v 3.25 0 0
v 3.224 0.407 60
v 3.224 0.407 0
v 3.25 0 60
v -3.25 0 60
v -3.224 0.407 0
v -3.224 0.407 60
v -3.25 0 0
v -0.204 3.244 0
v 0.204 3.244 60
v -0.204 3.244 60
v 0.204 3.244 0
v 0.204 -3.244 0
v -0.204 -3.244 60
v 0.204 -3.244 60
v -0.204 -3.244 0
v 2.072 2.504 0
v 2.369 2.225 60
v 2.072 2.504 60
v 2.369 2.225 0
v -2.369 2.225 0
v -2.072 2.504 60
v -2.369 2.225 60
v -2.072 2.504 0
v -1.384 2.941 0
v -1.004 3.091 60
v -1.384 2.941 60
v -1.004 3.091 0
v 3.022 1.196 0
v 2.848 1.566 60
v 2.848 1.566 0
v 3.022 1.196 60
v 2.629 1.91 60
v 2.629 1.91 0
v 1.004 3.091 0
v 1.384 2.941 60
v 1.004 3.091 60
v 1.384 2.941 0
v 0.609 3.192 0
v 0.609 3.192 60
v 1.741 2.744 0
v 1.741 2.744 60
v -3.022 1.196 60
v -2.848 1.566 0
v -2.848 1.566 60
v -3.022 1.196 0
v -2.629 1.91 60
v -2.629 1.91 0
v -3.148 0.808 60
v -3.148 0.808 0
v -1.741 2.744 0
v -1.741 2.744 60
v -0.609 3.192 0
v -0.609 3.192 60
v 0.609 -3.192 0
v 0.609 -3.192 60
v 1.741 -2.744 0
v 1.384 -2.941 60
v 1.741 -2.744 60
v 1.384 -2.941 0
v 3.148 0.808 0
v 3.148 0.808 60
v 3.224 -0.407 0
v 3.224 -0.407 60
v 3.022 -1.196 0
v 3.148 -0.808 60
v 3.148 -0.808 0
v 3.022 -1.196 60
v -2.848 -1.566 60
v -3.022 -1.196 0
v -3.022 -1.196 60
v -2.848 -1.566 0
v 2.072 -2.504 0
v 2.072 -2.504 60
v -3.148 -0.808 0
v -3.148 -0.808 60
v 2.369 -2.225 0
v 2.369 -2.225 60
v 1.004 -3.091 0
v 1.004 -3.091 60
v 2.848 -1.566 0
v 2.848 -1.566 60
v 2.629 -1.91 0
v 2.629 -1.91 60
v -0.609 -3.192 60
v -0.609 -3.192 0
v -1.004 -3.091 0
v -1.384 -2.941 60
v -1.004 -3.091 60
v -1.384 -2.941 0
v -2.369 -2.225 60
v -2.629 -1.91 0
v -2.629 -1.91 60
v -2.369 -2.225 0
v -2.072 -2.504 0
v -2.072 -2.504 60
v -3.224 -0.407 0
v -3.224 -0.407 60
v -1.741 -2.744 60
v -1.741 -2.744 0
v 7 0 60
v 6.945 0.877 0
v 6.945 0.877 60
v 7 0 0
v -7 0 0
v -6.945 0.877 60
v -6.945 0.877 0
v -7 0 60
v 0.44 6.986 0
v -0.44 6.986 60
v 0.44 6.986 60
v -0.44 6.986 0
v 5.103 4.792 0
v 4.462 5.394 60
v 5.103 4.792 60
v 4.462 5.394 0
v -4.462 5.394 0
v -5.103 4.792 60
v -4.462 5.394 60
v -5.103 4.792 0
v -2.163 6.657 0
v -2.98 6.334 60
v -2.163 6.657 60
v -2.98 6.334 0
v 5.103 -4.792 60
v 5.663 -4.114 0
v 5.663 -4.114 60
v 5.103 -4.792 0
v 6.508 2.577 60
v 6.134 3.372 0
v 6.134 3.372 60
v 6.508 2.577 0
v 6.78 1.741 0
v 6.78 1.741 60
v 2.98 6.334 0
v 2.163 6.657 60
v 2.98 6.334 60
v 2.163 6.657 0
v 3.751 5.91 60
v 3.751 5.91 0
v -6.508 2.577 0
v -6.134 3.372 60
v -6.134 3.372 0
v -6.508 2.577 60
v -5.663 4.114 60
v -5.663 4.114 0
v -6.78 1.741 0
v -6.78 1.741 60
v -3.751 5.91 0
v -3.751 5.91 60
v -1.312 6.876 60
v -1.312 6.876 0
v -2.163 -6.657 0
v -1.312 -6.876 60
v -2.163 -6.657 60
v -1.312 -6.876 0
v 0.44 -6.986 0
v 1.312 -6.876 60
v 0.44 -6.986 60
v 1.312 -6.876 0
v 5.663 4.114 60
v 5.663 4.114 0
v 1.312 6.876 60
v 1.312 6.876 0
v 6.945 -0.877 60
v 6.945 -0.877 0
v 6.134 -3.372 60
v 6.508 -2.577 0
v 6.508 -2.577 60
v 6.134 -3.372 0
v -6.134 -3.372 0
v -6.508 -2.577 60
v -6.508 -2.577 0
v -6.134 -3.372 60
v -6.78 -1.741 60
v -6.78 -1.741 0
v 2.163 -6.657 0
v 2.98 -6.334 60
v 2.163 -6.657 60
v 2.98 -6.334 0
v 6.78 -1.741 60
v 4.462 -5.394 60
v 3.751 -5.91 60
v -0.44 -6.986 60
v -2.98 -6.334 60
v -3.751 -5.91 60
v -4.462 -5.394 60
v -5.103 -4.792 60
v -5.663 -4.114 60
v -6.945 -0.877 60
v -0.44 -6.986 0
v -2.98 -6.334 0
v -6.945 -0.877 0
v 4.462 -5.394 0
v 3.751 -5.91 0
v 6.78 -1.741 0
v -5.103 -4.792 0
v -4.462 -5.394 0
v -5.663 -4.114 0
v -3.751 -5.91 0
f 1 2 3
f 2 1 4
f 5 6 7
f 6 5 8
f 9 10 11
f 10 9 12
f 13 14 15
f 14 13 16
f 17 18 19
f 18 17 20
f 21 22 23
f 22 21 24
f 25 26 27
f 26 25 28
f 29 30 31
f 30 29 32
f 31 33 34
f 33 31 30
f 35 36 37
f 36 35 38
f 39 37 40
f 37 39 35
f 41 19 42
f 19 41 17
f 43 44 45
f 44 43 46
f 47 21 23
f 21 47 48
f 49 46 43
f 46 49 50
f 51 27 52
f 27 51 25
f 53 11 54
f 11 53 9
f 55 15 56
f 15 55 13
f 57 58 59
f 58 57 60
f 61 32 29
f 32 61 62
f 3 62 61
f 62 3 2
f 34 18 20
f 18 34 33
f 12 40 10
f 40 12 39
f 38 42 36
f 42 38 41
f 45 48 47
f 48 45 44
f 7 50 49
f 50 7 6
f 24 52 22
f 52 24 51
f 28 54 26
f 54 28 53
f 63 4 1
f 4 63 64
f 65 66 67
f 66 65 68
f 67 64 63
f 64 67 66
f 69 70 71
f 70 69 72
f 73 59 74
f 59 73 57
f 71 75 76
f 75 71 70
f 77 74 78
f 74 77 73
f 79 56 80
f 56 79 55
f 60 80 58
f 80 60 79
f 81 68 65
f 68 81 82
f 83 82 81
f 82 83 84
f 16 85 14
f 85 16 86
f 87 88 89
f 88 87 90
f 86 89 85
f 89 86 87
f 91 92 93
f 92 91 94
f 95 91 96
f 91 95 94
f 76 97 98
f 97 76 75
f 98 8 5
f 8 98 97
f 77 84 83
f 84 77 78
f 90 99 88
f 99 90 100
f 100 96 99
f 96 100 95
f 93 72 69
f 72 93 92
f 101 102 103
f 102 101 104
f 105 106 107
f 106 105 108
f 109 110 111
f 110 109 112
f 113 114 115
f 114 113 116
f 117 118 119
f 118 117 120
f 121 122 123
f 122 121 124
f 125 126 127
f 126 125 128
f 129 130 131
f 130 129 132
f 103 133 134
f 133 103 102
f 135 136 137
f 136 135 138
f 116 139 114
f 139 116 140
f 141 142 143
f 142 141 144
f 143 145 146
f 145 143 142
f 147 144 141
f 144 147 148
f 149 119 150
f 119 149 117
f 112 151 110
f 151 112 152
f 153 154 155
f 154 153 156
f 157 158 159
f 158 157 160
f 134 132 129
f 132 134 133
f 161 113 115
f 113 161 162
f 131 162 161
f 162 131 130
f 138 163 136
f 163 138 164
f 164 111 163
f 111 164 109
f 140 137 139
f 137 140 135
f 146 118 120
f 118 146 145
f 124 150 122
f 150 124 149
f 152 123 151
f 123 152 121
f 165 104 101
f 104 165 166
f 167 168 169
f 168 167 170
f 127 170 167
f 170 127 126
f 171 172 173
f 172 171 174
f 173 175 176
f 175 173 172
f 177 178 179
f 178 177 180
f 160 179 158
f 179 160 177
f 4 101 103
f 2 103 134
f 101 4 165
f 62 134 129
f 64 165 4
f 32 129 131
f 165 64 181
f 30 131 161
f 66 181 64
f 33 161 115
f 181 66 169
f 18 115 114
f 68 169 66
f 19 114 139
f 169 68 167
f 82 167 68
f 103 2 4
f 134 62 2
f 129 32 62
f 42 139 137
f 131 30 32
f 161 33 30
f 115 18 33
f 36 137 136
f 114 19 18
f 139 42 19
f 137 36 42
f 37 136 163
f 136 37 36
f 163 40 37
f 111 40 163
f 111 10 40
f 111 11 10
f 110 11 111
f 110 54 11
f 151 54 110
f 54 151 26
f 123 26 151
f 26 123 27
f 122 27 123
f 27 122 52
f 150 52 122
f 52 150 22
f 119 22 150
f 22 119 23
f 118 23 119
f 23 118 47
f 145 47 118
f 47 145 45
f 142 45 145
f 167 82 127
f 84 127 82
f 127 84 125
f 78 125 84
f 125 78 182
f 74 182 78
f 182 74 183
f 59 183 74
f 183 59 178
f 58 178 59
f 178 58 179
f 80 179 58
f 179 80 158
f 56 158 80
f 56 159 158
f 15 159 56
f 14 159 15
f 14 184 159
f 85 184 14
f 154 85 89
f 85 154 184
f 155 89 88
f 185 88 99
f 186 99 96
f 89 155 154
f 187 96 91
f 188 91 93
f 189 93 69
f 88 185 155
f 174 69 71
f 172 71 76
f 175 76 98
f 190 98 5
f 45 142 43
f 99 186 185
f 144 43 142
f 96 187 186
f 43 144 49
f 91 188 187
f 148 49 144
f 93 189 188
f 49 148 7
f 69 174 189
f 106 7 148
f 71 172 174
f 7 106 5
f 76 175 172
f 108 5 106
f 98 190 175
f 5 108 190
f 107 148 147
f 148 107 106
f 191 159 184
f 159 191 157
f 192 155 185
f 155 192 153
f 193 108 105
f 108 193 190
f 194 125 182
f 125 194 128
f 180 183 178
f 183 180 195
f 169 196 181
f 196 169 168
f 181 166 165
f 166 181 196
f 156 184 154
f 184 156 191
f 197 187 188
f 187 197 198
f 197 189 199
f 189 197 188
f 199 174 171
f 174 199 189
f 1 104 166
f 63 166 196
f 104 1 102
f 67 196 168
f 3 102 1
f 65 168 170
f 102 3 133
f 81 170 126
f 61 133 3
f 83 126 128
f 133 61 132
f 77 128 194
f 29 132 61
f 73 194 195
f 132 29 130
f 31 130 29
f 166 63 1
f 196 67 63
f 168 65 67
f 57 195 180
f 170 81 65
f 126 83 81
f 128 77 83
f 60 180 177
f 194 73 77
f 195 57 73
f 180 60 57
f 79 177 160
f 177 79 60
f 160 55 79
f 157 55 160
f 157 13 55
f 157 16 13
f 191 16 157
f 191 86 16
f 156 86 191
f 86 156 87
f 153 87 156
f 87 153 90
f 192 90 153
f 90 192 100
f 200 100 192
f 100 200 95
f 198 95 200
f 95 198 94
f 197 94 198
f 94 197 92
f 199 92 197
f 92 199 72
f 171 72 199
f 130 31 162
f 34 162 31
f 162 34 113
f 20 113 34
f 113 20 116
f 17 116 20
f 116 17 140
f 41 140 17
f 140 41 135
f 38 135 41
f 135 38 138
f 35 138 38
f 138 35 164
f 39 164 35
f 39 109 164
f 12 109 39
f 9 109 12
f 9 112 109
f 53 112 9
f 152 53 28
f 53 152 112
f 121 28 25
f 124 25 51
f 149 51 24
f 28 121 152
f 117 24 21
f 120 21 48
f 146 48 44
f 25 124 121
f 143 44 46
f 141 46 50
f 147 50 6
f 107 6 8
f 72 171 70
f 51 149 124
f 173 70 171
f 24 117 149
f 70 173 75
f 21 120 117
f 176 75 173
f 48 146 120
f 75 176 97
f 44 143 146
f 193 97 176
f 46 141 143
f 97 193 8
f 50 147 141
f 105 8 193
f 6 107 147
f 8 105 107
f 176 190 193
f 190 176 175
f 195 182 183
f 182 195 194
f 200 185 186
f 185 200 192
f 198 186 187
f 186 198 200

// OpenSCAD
$fn = 50;


difference() {
	union() {
		cylinder(h = 60, r = 7.0000000000);
	}
	union() {
		cylinder(h = 60, r = 3.2500000000);
		cylinder(h = 60, r = 1.8000000000);
		cylinder(h = 60, r = 1.8000000000);
		cylinder(h = 60, r = 1.8000000000);
	}
}
